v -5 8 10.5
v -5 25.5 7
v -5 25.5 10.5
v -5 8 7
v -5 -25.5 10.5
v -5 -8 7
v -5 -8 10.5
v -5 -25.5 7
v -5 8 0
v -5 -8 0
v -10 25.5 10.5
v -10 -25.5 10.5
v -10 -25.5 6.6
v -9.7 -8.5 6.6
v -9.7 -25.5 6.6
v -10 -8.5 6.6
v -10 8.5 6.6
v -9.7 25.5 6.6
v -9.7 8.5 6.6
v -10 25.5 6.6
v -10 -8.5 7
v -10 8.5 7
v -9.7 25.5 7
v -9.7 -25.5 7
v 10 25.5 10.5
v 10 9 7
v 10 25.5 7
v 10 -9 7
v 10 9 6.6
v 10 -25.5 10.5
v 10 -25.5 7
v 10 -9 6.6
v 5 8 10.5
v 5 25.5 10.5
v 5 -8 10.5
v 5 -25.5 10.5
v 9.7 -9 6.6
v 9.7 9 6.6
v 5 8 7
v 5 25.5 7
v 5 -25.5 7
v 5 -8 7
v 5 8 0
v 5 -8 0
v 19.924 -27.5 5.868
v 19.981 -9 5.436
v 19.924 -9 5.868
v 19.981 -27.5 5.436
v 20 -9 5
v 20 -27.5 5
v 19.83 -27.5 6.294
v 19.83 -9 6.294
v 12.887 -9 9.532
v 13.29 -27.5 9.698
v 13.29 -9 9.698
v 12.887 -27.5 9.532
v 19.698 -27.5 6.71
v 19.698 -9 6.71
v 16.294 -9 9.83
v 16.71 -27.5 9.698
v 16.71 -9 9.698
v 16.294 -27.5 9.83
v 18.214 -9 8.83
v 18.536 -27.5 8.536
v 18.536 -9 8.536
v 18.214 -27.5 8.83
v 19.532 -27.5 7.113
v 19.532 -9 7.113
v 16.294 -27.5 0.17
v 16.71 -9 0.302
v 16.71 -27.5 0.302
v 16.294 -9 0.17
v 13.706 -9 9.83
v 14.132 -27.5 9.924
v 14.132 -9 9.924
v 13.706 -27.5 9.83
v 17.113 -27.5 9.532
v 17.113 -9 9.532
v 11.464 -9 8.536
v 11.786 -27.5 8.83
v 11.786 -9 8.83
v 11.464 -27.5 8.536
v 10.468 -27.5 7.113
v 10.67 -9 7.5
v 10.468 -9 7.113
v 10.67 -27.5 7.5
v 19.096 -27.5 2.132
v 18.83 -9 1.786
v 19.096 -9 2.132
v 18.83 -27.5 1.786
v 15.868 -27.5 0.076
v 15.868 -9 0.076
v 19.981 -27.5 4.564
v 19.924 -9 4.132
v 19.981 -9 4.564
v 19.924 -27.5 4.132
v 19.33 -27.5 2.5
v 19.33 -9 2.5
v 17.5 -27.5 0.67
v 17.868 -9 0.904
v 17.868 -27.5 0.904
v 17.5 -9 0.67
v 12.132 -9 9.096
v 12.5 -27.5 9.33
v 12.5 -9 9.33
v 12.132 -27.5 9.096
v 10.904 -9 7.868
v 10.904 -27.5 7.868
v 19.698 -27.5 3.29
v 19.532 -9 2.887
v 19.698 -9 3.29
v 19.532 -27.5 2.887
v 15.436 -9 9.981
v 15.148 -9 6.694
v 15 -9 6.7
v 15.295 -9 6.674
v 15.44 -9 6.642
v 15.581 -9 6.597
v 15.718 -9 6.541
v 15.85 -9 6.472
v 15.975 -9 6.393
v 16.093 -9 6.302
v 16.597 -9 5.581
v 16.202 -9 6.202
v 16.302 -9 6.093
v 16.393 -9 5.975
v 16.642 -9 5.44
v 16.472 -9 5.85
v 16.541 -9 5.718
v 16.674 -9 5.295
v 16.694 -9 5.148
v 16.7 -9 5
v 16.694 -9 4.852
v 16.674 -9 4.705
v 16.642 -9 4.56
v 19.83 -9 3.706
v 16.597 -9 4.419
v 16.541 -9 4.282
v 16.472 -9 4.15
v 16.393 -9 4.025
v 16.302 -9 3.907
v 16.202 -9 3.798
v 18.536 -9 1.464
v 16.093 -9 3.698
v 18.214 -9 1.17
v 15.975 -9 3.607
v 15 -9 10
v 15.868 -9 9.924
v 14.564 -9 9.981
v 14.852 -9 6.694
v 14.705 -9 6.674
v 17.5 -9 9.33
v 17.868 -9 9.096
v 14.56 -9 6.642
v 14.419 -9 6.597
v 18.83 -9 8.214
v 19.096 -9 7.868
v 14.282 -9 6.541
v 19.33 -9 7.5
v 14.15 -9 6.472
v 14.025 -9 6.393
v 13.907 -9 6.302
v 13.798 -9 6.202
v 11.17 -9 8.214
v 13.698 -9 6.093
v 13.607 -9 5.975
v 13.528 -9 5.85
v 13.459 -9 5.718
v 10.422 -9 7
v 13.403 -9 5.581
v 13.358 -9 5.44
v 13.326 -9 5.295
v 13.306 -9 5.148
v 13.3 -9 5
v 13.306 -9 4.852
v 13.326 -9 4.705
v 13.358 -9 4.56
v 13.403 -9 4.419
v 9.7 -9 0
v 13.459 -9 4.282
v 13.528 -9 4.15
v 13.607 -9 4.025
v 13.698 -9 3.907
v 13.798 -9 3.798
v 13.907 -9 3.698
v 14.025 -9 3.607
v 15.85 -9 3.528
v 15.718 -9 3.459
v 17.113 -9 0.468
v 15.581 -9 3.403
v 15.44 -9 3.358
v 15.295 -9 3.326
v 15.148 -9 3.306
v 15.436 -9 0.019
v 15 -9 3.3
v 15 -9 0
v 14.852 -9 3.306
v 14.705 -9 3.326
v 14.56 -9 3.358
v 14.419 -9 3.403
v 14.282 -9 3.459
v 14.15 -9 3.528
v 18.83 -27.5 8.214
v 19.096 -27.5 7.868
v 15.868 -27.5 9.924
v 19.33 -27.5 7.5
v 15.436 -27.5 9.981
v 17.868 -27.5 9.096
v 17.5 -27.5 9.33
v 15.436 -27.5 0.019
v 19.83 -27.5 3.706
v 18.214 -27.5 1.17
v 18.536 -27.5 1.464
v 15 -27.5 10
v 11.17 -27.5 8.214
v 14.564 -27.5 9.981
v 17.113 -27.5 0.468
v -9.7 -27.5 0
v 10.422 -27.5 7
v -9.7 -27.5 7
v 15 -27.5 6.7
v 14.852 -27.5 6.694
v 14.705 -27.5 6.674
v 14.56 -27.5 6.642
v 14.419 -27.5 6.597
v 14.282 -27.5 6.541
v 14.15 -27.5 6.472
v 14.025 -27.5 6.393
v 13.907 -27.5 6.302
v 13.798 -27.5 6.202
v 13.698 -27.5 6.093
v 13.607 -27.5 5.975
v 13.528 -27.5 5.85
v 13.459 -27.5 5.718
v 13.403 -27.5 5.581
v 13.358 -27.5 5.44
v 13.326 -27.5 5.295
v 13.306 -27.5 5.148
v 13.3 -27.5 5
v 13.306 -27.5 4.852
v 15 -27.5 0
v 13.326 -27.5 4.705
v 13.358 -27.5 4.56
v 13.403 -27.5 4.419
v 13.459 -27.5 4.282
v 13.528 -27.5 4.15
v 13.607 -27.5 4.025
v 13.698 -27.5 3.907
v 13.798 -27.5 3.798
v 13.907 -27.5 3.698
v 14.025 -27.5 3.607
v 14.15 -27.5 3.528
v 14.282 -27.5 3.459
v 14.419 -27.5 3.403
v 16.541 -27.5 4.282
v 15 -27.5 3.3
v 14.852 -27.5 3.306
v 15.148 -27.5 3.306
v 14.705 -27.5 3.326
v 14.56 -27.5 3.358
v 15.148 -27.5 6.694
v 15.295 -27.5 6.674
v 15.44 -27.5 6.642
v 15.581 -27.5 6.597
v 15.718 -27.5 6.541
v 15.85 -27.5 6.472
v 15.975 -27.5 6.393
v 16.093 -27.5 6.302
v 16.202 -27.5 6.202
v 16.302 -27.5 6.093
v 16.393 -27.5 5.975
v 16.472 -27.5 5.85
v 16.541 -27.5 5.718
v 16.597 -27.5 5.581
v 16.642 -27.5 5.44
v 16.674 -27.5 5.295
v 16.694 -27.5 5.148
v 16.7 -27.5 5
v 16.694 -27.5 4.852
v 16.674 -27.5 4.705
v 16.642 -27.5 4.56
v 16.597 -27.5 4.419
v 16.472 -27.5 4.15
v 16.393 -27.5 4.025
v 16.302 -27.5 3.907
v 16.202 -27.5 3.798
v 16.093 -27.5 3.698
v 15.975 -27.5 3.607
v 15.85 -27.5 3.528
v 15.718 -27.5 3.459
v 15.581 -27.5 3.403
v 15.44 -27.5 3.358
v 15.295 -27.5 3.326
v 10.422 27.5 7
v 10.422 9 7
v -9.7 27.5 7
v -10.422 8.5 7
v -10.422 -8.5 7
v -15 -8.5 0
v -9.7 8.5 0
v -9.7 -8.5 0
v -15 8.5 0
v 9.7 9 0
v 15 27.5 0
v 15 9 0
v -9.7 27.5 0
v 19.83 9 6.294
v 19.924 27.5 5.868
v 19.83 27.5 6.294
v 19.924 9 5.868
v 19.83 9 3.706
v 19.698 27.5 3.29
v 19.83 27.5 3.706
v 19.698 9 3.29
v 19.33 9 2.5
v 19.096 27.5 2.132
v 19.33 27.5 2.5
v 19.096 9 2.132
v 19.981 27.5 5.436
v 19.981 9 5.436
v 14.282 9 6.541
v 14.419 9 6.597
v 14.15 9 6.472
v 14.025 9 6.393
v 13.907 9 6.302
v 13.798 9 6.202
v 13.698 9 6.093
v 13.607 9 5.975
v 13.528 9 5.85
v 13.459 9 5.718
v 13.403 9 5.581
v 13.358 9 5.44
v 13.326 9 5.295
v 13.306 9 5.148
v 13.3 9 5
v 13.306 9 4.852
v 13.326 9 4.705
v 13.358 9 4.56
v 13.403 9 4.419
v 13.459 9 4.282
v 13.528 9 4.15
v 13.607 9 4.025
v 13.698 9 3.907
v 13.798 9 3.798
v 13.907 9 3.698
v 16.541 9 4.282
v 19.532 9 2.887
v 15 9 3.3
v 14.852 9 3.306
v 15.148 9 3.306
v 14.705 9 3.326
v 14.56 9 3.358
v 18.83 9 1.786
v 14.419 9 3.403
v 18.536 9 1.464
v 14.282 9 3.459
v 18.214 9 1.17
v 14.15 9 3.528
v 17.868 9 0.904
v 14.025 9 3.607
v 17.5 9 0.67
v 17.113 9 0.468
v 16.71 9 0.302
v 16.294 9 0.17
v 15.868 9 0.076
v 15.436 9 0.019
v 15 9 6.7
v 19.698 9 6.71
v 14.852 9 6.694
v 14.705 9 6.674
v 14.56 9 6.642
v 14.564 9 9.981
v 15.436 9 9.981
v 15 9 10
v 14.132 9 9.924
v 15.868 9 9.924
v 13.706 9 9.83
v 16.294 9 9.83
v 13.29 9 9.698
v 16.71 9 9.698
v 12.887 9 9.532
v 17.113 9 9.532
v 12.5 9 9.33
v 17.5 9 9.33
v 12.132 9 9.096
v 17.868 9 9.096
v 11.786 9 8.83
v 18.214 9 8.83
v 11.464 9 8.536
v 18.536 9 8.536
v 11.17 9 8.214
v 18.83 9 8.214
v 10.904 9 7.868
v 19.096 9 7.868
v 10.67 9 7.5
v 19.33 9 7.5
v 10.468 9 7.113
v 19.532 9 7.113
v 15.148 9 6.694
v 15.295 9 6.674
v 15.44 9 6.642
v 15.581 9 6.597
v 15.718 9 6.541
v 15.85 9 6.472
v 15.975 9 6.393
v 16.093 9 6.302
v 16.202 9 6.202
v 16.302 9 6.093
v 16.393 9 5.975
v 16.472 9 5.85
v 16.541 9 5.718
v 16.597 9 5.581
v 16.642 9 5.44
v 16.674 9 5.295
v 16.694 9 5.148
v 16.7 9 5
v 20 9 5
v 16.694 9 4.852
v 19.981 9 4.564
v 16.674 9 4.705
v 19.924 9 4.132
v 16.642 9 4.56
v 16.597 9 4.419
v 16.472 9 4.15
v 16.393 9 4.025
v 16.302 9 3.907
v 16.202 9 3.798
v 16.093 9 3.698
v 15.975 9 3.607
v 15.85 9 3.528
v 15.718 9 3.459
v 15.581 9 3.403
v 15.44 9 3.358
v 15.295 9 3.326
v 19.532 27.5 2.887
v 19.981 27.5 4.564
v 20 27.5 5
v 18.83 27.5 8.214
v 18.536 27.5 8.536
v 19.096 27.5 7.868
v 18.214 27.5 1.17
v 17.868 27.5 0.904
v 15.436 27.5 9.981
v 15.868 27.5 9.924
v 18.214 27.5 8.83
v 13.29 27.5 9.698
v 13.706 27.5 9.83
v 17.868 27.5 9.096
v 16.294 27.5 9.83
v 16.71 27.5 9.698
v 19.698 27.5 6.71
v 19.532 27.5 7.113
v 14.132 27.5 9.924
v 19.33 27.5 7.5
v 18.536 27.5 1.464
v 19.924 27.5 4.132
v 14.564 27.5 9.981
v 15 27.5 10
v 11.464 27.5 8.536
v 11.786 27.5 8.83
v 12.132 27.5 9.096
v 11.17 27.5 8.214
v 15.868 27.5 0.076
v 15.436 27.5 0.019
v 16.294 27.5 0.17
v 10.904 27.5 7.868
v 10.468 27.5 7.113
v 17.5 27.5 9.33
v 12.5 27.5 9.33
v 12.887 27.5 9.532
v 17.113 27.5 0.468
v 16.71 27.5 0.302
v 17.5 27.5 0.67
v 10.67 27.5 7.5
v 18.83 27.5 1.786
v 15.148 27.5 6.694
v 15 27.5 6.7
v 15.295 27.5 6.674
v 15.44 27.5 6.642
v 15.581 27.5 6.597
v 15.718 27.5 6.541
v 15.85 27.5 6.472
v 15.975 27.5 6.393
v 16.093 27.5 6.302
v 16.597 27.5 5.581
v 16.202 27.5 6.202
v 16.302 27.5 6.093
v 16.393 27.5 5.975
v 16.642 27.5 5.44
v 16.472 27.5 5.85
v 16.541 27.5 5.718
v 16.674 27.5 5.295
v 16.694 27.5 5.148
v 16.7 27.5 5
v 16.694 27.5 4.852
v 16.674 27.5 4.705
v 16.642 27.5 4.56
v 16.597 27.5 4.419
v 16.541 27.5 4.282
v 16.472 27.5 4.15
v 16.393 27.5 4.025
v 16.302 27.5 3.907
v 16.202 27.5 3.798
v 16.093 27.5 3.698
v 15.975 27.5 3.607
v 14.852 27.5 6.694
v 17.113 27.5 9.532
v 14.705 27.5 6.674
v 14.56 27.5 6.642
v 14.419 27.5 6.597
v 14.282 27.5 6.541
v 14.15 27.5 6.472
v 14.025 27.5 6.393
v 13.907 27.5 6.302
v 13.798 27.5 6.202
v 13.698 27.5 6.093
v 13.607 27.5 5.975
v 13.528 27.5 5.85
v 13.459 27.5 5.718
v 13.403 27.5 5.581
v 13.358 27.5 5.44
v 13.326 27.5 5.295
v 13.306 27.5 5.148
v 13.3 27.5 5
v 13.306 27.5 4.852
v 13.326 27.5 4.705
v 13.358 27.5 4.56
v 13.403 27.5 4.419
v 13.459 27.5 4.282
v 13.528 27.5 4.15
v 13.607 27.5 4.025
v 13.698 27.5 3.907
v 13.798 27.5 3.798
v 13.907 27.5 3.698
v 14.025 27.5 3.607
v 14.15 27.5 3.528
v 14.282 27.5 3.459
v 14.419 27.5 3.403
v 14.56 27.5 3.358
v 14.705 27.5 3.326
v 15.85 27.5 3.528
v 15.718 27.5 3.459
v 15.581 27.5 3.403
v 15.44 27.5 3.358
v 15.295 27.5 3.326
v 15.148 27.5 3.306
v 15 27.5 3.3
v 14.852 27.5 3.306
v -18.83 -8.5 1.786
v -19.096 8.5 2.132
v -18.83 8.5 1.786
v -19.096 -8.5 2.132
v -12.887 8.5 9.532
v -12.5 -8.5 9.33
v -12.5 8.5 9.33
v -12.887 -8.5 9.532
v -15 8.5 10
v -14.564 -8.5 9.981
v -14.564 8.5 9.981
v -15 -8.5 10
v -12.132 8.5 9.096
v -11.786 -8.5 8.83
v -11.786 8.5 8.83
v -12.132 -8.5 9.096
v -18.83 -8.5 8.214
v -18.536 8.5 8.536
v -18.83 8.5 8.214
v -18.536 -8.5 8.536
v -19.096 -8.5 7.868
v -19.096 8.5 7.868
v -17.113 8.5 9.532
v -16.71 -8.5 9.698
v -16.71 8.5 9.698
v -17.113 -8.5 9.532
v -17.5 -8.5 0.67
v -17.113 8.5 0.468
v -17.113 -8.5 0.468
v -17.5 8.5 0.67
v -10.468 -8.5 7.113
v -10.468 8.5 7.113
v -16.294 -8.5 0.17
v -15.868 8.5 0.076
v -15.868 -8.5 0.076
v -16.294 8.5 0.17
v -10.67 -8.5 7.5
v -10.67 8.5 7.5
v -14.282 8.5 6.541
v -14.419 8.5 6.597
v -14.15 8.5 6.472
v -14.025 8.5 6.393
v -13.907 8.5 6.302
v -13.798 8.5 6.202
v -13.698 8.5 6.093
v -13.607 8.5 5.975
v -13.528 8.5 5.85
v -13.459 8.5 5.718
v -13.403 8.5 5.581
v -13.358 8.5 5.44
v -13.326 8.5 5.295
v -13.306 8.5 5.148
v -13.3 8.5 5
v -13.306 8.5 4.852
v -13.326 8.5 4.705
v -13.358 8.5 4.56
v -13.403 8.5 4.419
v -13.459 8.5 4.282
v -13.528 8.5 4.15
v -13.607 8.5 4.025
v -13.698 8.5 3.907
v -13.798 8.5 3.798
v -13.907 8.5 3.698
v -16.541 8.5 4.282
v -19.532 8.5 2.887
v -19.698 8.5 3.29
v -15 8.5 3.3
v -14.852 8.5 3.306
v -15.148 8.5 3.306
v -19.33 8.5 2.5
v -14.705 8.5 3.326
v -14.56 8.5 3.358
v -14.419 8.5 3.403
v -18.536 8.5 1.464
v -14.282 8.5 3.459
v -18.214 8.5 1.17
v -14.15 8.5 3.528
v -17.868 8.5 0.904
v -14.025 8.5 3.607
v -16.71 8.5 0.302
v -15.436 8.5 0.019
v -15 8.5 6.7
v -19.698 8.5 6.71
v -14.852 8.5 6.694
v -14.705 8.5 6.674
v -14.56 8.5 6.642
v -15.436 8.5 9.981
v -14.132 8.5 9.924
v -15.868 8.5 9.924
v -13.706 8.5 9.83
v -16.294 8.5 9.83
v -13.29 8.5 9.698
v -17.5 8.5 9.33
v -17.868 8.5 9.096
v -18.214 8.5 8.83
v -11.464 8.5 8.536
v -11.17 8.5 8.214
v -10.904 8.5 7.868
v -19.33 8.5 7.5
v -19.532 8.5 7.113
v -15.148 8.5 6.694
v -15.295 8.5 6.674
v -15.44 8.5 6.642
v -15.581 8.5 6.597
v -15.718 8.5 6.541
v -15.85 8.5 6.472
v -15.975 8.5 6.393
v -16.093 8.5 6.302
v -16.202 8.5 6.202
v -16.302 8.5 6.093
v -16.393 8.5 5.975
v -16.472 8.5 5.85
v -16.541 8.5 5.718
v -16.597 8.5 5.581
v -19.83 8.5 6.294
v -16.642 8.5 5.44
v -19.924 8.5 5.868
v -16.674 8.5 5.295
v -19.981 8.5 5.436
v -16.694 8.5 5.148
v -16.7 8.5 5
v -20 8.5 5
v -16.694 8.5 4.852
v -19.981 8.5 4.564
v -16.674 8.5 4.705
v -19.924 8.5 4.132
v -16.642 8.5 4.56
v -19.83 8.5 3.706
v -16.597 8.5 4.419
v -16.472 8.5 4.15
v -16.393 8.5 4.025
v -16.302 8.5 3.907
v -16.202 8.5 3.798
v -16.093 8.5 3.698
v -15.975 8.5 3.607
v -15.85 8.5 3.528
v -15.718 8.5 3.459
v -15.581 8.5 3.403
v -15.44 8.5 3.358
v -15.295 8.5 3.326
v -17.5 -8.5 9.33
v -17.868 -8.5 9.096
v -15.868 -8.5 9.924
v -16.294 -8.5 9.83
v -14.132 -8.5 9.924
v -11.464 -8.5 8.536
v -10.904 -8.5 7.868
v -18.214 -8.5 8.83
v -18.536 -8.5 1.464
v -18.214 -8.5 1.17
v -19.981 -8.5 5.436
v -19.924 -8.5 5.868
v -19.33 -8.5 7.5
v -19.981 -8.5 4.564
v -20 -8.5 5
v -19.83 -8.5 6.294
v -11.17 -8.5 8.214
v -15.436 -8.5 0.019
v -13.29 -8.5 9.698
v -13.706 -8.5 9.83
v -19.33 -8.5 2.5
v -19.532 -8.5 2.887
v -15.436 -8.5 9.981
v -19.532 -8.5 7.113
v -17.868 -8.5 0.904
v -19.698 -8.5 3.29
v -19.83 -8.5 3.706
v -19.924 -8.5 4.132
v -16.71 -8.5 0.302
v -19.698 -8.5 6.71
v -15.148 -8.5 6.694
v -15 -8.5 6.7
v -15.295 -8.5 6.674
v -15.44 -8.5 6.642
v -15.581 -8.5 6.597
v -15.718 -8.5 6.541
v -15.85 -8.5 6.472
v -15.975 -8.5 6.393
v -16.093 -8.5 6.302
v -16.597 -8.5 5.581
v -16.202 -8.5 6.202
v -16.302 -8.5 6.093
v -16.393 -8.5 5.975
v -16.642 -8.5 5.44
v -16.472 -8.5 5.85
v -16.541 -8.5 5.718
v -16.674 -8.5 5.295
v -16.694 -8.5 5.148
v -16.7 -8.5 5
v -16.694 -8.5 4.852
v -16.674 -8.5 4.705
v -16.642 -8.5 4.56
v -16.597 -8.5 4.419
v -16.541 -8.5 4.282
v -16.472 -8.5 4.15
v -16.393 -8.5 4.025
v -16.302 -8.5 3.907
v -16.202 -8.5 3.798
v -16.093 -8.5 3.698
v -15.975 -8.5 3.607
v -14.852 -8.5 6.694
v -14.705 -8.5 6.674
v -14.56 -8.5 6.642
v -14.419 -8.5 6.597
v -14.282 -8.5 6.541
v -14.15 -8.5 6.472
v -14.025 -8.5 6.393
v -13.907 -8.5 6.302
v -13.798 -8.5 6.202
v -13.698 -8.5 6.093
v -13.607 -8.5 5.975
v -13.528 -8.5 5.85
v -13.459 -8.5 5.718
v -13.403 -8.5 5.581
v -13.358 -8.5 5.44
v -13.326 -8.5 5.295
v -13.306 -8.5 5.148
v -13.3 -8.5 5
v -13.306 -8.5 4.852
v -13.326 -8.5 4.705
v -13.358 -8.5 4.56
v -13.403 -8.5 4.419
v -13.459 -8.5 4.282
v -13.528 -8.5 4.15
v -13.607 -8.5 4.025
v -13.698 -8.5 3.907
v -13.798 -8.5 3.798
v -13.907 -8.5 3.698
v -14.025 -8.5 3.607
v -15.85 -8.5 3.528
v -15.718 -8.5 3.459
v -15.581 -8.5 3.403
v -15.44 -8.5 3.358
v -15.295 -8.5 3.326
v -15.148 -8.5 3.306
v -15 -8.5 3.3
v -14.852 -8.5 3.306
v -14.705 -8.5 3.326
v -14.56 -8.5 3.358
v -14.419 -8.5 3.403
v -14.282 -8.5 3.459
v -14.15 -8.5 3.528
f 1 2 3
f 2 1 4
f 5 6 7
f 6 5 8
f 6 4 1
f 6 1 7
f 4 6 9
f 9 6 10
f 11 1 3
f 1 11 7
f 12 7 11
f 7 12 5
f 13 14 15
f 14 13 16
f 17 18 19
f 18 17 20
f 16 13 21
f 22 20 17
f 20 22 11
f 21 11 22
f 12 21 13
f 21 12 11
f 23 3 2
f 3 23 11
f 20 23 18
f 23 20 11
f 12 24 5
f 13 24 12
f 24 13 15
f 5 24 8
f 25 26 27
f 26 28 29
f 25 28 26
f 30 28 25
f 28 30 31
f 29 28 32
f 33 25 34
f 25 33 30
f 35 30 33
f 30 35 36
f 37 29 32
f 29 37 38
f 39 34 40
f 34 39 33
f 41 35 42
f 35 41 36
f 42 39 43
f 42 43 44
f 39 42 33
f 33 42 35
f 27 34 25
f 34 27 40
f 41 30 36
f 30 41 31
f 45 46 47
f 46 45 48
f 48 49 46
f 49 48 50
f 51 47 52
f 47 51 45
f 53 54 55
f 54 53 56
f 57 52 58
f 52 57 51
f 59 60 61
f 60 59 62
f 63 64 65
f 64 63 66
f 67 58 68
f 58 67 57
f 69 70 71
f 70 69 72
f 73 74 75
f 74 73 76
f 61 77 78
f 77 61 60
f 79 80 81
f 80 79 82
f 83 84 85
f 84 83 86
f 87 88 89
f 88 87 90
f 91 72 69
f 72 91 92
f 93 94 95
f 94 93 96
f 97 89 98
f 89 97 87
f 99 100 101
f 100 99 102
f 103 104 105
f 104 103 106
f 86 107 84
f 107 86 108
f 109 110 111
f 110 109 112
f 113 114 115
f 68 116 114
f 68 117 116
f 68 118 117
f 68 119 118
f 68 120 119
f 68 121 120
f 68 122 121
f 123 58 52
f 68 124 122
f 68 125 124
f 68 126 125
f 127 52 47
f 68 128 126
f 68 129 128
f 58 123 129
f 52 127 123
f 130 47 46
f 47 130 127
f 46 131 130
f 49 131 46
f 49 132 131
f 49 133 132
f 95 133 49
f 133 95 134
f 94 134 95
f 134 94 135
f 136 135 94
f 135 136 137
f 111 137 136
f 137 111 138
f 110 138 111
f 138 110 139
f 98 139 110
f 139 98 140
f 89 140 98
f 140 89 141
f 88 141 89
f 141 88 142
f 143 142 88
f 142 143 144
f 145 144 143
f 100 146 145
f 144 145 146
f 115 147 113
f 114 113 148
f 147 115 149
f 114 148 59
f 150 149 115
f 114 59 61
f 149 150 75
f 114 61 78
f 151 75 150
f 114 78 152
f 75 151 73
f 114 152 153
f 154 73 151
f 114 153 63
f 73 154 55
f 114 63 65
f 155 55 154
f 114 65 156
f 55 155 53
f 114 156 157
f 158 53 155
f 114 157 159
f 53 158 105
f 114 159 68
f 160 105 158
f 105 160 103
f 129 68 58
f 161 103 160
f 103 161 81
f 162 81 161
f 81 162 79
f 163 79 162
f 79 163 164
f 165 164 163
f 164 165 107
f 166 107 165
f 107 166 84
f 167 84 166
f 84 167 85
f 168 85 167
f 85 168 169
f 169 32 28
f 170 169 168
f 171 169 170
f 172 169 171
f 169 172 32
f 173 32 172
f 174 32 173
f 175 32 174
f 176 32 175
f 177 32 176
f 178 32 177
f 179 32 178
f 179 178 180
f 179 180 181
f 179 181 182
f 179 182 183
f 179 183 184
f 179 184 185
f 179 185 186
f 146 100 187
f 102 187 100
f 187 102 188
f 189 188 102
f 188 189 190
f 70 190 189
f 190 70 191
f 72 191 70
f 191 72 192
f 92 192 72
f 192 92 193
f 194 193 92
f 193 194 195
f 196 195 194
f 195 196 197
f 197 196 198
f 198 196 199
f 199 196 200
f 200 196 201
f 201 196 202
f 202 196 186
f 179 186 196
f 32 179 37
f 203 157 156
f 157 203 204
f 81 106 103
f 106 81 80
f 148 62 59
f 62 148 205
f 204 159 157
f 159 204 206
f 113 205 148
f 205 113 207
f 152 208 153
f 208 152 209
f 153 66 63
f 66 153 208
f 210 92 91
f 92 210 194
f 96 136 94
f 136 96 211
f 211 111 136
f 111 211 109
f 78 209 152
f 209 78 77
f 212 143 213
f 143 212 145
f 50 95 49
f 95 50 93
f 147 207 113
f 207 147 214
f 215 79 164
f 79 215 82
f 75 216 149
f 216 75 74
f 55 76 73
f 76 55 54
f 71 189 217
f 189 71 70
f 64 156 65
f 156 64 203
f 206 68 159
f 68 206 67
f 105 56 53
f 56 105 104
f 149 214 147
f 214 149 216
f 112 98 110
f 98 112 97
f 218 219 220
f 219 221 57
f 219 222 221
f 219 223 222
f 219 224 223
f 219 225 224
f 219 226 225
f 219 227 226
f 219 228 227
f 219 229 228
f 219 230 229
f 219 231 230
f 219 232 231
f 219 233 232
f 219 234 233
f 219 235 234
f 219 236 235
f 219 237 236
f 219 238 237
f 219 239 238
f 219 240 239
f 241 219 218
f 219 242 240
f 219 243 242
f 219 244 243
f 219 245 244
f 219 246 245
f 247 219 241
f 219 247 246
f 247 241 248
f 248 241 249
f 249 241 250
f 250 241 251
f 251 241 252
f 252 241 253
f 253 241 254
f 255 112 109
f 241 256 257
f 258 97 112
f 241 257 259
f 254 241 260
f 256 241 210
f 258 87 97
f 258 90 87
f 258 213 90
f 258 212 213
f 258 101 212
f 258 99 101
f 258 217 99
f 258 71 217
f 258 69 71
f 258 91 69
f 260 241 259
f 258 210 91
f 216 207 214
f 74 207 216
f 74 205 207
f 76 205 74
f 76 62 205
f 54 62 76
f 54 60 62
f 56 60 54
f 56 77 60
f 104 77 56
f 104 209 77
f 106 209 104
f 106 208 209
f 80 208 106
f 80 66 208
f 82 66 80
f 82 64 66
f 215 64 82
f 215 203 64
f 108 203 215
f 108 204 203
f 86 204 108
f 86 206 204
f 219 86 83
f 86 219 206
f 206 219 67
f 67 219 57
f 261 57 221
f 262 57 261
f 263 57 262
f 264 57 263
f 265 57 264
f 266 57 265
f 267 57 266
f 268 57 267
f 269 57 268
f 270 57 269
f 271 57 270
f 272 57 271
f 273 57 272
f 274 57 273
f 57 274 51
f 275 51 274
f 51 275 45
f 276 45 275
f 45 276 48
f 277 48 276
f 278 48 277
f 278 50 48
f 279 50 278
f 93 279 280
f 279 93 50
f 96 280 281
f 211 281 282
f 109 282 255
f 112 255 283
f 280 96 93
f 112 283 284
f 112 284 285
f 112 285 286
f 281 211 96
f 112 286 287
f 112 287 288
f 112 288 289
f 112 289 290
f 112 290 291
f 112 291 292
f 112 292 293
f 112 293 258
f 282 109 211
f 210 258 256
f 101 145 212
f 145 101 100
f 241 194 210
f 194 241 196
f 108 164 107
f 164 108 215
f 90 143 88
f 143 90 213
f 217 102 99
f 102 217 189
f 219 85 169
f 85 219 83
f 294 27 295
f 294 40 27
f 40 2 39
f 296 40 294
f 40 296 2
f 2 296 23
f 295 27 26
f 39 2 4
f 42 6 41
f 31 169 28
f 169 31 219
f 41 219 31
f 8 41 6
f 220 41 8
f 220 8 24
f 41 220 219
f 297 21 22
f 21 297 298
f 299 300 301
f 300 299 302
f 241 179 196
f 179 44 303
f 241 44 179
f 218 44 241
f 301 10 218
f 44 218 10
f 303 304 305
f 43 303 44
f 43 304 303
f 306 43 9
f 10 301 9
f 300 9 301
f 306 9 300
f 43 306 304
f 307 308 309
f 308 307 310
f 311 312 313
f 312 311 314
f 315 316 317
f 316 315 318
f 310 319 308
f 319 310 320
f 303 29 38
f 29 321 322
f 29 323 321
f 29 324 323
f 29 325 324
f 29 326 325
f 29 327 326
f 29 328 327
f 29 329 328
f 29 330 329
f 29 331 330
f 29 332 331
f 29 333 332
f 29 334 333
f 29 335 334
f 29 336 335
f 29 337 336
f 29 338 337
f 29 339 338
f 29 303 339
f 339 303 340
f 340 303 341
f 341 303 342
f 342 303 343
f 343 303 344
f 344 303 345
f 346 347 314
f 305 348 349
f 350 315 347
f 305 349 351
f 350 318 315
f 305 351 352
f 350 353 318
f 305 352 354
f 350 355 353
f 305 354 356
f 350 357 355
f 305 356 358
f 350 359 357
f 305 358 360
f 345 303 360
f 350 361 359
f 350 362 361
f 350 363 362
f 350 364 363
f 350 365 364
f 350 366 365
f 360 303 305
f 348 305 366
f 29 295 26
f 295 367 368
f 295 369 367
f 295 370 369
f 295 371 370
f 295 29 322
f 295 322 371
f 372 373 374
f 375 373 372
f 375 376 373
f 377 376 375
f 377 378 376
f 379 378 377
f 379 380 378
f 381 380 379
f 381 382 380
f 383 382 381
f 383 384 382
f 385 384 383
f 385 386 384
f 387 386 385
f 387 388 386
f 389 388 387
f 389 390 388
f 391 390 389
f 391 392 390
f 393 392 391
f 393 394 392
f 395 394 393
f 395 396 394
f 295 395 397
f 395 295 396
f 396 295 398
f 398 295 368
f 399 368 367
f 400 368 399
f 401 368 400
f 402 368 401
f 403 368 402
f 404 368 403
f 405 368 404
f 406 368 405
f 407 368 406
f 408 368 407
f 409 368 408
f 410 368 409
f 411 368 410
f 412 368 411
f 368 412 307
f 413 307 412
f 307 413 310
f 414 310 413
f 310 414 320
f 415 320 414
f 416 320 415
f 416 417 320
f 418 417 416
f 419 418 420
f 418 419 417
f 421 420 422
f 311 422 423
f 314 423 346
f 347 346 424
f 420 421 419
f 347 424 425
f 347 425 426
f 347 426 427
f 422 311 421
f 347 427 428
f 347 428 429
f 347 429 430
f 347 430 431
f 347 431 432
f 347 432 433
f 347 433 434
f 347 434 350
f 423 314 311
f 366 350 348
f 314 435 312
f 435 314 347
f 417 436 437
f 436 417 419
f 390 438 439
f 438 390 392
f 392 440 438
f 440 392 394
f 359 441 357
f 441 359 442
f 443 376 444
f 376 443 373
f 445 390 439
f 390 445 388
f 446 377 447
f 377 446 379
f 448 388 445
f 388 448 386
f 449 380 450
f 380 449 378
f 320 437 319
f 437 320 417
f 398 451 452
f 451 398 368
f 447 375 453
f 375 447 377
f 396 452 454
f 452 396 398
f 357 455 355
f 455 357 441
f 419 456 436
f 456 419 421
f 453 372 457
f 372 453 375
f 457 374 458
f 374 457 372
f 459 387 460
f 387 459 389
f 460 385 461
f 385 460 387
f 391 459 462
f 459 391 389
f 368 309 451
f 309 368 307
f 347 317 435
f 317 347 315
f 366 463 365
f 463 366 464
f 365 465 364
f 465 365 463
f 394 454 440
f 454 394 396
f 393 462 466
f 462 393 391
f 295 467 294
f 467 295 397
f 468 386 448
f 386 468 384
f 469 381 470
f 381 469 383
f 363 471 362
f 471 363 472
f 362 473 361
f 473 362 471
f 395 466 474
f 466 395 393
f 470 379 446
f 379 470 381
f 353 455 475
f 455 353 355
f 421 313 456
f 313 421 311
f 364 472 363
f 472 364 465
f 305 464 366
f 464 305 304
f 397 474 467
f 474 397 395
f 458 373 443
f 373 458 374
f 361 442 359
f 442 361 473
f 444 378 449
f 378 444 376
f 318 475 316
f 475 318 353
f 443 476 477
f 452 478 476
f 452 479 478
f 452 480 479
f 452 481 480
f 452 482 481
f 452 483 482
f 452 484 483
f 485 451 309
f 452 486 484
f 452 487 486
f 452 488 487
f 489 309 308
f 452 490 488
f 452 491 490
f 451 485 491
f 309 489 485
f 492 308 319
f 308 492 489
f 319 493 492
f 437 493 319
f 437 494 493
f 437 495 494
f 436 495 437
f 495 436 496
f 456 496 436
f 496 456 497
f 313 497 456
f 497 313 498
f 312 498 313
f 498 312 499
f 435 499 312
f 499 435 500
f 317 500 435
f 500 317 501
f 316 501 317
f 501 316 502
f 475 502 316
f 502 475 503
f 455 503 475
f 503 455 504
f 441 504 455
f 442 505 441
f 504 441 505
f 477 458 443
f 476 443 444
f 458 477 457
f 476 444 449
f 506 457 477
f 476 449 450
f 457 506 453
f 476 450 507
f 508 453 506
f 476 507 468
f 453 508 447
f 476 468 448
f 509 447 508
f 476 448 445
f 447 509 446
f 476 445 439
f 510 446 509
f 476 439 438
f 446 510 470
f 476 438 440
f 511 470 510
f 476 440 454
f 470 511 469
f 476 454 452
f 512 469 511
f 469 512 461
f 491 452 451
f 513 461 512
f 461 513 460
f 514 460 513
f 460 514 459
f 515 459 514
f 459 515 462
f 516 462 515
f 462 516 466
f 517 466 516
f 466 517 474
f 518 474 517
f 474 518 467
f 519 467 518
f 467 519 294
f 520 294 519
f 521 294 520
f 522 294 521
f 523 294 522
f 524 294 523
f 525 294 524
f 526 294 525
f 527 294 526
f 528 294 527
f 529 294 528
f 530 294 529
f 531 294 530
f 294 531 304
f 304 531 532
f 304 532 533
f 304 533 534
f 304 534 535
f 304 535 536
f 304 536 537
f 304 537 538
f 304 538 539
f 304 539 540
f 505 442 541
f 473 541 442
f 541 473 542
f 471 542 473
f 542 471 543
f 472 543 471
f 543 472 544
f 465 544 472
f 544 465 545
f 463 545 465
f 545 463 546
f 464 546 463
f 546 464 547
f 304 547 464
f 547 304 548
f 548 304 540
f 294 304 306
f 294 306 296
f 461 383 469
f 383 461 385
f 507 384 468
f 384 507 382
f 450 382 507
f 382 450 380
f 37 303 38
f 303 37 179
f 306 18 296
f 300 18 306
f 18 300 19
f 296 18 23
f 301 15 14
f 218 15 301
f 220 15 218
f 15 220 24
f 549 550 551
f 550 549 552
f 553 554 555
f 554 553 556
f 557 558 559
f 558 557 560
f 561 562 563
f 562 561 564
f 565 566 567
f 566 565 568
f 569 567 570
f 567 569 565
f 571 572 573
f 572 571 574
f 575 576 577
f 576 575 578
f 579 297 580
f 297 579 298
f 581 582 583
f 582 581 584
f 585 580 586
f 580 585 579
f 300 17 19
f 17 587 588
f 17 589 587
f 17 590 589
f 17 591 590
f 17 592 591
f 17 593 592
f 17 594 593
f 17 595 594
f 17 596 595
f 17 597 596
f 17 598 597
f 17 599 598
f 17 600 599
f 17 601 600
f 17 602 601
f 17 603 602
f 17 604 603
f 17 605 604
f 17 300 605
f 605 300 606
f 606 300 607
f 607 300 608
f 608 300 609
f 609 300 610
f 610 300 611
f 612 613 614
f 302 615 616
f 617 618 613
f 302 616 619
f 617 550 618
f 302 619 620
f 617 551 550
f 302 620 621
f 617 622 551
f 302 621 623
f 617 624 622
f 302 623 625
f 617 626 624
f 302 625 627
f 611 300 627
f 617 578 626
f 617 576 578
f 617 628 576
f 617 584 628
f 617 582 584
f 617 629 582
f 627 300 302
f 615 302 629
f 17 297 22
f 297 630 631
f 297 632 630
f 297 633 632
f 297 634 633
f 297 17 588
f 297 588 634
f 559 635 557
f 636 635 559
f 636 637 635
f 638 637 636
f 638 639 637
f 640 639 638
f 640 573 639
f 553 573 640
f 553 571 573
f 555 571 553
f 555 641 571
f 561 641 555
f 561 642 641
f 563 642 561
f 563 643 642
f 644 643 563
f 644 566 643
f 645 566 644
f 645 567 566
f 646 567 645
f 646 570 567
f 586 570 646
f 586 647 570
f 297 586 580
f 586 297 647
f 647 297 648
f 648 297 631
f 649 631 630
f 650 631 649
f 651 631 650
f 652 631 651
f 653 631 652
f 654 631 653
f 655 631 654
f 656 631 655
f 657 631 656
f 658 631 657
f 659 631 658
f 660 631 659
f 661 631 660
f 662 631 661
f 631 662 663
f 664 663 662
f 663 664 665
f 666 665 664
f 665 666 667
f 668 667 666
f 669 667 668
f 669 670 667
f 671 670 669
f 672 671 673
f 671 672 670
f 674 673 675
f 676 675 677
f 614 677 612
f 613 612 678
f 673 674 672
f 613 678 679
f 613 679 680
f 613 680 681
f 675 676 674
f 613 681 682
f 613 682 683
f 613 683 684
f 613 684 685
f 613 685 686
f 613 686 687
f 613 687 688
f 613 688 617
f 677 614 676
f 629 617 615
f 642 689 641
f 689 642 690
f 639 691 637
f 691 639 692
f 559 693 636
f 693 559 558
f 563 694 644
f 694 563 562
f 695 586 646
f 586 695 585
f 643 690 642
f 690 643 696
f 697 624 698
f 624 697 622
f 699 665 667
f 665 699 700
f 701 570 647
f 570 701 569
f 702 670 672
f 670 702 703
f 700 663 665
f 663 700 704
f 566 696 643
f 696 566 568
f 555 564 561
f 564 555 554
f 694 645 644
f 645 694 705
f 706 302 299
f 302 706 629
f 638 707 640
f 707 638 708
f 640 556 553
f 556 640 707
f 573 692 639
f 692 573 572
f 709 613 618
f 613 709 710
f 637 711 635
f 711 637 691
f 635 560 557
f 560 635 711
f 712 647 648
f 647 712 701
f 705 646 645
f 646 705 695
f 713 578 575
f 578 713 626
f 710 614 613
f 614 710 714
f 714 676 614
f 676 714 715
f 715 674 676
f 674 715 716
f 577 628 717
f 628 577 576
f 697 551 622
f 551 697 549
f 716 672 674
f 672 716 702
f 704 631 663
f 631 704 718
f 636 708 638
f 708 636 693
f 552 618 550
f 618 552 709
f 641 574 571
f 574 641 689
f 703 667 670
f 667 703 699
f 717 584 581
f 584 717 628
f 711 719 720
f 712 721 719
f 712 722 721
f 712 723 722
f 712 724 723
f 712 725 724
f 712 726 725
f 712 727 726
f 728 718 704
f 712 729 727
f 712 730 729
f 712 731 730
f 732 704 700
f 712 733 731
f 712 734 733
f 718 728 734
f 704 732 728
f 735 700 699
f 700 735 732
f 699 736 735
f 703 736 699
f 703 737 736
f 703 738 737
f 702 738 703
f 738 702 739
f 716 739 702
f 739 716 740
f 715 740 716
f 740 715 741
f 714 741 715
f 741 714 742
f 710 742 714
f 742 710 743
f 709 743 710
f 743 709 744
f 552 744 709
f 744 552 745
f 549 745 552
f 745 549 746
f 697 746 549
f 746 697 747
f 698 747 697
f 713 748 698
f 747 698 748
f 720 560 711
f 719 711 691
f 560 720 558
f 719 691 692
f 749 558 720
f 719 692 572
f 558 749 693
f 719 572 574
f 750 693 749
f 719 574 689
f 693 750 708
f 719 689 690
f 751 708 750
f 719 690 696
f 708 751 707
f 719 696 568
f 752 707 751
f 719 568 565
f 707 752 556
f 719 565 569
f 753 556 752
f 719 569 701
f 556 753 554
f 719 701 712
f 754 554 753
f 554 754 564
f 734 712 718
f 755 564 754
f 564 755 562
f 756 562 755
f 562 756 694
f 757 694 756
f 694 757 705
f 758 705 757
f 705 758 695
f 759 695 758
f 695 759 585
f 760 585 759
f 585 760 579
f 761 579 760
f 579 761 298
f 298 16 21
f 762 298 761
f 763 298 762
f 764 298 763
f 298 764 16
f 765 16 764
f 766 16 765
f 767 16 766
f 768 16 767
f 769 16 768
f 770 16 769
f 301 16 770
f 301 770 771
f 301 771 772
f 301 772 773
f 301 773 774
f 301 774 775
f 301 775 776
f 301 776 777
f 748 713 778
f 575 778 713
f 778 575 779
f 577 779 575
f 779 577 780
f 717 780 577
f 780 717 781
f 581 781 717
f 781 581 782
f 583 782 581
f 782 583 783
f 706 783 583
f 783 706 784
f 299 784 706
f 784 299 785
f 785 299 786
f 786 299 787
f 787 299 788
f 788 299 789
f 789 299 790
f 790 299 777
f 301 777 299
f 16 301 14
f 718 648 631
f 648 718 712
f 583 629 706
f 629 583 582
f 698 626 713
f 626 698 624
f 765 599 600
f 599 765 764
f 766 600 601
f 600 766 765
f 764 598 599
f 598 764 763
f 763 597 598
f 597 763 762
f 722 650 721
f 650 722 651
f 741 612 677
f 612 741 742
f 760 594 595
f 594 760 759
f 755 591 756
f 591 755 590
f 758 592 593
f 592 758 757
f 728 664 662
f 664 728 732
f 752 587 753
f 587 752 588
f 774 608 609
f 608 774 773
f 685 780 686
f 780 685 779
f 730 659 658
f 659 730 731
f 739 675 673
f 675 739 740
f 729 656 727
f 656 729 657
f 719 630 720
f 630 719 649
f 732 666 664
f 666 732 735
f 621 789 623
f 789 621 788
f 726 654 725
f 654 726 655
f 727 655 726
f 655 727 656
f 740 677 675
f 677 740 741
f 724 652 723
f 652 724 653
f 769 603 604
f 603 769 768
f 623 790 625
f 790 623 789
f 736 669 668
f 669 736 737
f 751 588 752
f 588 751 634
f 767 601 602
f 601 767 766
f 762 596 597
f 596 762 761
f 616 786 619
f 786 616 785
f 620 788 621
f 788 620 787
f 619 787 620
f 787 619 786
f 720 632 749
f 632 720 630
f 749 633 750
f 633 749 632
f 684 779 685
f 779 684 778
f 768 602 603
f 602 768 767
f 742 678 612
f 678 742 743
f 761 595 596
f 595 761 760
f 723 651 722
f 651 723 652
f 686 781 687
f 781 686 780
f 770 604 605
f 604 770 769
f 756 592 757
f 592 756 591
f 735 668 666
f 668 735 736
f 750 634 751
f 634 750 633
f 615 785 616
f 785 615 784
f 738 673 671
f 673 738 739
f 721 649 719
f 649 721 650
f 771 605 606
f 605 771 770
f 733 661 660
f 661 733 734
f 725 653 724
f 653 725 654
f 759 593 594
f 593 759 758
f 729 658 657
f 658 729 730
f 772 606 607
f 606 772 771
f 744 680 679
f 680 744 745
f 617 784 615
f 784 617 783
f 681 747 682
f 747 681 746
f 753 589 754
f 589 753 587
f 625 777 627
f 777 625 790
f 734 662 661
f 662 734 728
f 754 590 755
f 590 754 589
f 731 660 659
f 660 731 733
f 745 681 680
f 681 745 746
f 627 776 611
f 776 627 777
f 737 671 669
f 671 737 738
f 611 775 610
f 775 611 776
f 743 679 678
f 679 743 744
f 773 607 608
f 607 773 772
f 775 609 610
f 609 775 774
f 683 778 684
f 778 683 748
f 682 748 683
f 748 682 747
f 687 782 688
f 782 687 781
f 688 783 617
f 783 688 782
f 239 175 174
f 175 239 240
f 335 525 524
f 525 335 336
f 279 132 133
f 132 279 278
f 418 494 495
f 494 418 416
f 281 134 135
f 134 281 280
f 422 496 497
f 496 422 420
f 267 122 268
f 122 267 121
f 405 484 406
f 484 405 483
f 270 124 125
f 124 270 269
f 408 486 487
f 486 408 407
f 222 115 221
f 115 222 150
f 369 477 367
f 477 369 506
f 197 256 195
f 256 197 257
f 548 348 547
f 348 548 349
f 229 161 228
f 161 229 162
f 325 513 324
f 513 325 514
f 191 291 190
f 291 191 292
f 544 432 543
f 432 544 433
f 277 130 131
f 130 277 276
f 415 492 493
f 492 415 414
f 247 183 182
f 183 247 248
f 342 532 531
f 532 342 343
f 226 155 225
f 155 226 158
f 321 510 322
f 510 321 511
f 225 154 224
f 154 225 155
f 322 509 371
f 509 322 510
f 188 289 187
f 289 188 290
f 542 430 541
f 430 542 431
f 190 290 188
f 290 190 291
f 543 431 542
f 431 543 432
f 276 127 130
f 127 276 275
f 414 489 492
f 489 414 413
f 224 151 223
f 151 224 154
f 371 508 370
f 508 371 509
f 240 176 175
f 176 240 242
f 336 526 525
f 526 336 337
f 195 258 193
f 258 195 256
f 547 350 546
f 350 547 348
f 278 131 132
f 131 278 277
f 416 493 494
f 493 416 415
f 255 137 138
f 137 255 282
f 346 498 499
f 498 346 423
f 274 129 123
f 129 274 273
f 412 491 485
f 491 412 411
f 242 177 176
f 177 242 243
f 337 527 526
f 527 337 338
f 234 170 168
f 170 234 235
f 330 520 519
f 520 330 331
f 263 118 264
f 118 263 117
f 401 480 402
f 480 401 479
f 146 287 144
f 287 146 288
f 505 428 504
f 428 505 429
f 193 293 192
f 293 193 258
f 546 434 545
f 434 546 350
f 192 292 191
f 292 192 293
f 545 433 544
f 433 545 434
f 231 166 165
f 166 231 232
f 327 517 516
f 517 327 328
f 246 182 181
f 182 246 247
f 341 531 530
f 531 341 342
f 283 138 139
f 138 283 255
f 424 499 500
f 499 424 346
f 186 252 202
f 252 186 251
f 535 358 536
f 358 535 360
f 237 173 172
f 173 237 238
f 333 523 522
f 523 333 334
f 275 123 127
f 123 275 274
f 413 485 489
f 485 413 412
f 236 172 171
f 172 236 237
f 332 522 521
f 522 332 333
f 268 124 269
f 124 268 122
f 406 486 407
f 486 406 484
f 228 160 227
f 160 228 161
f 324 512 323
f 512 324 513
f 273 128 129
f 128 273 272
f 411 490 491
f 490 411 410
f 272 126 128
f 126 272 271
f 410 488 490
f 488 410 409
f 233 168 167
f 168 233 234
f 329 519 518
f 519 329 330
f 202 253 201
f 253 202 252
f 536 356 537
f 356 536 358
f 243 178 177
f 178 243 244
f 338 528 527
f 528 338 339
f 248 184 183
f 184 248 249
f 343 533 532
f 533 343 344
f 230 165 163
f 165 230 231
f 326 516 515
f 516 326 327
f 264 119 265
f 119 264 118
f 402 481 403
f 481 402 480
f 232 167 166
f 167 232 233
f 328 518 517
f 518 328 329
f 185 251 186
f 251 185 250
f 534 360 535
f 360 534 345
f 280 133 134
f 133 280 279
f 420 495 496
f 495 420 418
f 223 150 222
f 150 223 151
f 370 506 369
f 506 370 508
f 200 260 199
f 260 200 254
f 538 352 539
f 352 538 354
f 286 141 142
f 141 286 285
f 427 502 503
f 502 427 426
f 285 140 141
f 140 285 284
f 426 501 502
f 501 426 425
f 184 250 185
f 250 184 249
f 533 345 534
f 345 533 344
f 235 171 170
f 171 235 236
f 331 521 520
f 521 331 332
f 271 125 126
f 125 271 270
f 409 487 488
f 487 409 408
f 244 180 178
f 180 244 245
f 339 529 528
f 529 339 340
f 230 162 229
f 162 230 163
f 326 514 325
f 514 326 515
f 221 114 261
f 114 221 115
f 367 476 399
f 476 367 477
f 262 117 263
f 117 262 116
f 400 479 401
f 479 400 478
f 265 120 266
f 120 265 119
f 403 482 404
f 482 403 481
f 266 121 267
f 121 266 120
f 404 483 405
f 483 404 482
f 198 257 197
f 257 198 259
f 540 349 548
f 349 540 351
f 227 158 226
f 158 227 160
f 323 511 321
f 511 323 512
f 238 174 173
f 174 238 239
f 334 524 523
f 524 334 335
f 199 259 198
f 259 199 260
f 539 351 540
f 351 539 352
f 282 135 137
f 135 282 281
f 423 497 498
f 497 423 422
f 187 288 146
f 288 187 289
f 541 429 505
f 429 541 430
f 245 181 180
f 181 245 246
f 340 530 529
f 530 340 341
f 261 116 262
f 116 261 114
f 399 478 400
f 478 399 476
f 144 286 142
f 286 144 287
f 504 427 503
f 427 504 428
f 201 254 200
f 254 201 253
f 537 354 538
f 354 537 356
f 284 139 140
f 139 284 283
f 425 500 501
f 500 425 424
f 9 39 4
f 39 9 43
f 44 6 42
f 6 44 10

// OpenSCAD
/*
  Standalone pinned track links
  -----------------------------
  One identical link is repeated to form a track. The front end has two outer
  knuckles and the rear end has one centre knuckle. Adjacent links share a
  3 mm steel pin or M3 fastener.

  Print orientation: tread up, flat inner pad face on the build plate.
*/

$fn = 72;

// link, straight_pair, bent_pair, six_link_plate, cog_reference,
// cog_engagement, dimensions, straight_collision, bend_collision,
// cog_collision, pin_reference
part = "link";

// ---------- primary parameters ----------
track_width = 55;
pitch = 30;
pad_thickness = 7;

barrel_od = 10;
hinge_z = barrel_od / 2;

pin_d = 3;
pin_bore_d = 3.4;
pin_end_overhang = 2;

centre_knuckle_length = 17;
knuckle_clearance = 0.5;
outer_knuckle_length =
    (track_width - centre_knuckle_length - 2 * knuckle_clearance) / 2;

core_end_clearance = 0.3;
core_body_length = pitch - barrel_od - 2 * core_end_clearance;
connector_overlap = 1;
connector_length =
    pitch / 2 - core_body_length / 2 + connector_overlap;

grouser_height = 3.5;
grouser_width = track_width - 4;
grouser_length = 5;
grouser_spacing = 15;
grouser_overlap = 0.4;

// A cog tooth enters this opening from the wheel side. Keeping it open through
// the tread prevents the radial collision that a blind pocket would create.
drive_window_tangent = 10;
drive_window_width = 16;

reference_tooth_tangent_root = 8;
reference_tooth_tangent_tip = 5;
reference_tooth_width = 14;
reference_tooth_radial = 10;
reference_tooth_inset = 3.5;
reference_cog_body_inset = 7.5;

// A pinned link bends this much around an 11-tooth pitch circle.
design_sprocket_teeth = 11;
design_bend_angle = 360 / design_sprocket_teeth;

assert(pin_bore_d > pin_d, "Pin bore must be larger than the pin");
assert(barrel_od > pin_bore_d + 4, "Hinge barrel wall is too thin");
assert(outer_knuckle_length > 0, "Knuckle lengths must be positive");
assert(connector_overlap > 0, "Connector overlap must be positive");
assert(
    drive_window_tangent > reference_tooth_tangent_root &&
    drive_window_width > reference_tooth_width,
    "The drive window must clear the reference cog tooth"
);
assert(
    reference_tooth_tangent_root > reference_tooth_tangent_tip,
    "Cog tooth tip must be narrower than its root"
);

// ---------- geometry ----------
module barrel(x, y, length) {
    translate([x, y, hinge_z])
        rotate([90, 0, 0])
            cylinder(h=length, d=barrel_od, center=true);
}

module pin_bore(x) {
    translate([x, 0, hinge_z])
        rotate([90, 0, 0])
            cylinder(h=track_width + 2, d=pin_bore_d, center=true);
}

module tread_ribs() {
    for (x = [-grouser_spacing / 2, grouser_spacing / 2])
        translate([
            x,
            0,
            pad_thickness + grouser_height / 2 - grouser_overlap / 2
        ])
            cube([
                grouser_length,
                grouser_width,
                grouser_height + grouser_overlap
            ], center=true);
}

module connector(x, y, width) {
    translate([x, y, pad_thickness / 2])
        cube([connector_length, width, pad_thickness], center=true);
}

module track_link() {
    outer_y = track_width / 2 - outer_knuckle_length / 2;

    difference() {
        union() {
            // Wheel-side face sits at z=0 for support-free printing.
            translate([0, 0, pad_thickness / 2])
                cube([core_body_length, track_width, pad_thickness], center=true);

            tread_ribs();

            // Front: two female outer knuckles.
            for (side = [-1, 1]) {
                barrel(
                    pitch / 2,
                    side * outer_y,
                    outer_knuckle_length
                );
                connector(
                    core_body_length / 2 - connector_overlap + connector_length / 2,
                    side * outer_y,
                    outer_knuckle_length
                );
            }

            // Rear: one male centre knuckle.
            barrel(-pitch / 2, 0, centre_knuckle_length);
            connector(
                -core_body_length / 2 + connector_overlap - connector_length / 2,
                0,
                centre_knuckle_length
            );
        }

        // Cut through the complete width so every knuckle is coaxial.
        pin_bore(-pitch / 2);
        pin_bore(pitch / 2);

        // Through-window for a cog tooth. It is deliberately not a blind
        // pocket: the future tooth may pass through without hitting a roof.
        translate([0, 0, (pad_thickness + grouser_height) / 2])
            cube([
                drive_window_tangent,
                drive_window_width,
                pad_thickness + grouser_height + 2
            ], center=true);
    }
}

module pin_reference() {
    color("silver")
        rotate([90, 0, 0])
            cylinder(
                h=track_width + 2 * pin_end_overhang,
                d=pin_d,
                center=true
            );
}

module second_link(angle=0) {
    shared_axis = [pitch / 2, 0, hinge_z];

    translate(shared_axis)
        rotate([0, -angle, 0])
            translate(-shared_axis)
                translate([pitch, 0, 0])
                    track_link();
}

module link_pair(angle=0, show_pin=true) {
    color("darkorange") track_link();
    color("gold") second_link(angle);

    if (show_pin)
        translate([pitch / 2, 0, hinge_z]) pin_reference();
}

module six_link_plate() {
    x_step = 46;
    y_step = track_width + 7;

    for (row = [-0.5, 0.5])
        for (column = [-1, 0, 1])
            translate([column * x_step, row * y_step, 0])
                track_link();
}

module tapered_cog_tooth() {
    radial_half = reference_tooth_radial / 2;
    width_half = reference_tooth_width / 2;
    root_half = reference_tooth_tangent_root / 2;
    tip_half = reference_tooth_tangent_tip / 2;

    // Local X is radial, Y is across the track, and Z is tangential. The
    // narrower outer face gives symmetric lead-in and lead-out ramps, so the
    // same wheel geometry works in forward and reverse.
    polyhedron(
        points=[
            [-radial_half, -width_half, -root_half],
            [-radial_half,  width_half, -root_half],
            [-radial_half,  width_half,  root_half],
            [-radial_half, -width_half,  root_half],
            [ radial_half, -width_half, -tip_half],
            [ radial_half,  width_half, -tip_half],
            [ radial_half,  width_half,  tip_half],
            [ radial_half, -width_half,  tip_half]
        ],
        faces=[
            [0, 3, 2, 1],
            [4, 5, 6, 7],
            [0, 1, 5, 4],
            [3, 7, 6, 2],
            [0, 4, 7, 3],
            [1, 2, 6, 5]
        ],
        convexity=4
    );
}

module cog_reference() {
    pitch_radius = pitch / (2 * sin(180 / design_sprocket_teeth));
    tooth_centre_radius = pitch_radius - reference_tooth_inset;
    body_radius = pitch_radius - reference_cog_body_inset;

    difference() {
        union() {
            rotate([90, 0, 0])
                cylinder(h=reference_tooth_width, r=body_radius, center=true);

            // Offset the pattern so the engagement fixture has one tooth
            // exactly on its vertical centreline.
            for (step = [0 : design_sprocket_teeth - 1])
                let(angle = 90 + step * 360 / design_sprocket_teeth)
                translate([
                    tooth_centre_radius * cos(angle),
                    0,
                    tooth_centre_radius * sin(angle)
                ])
                    rotate([0, -angle, 0])
                        tapered_cog_tooth();
        }

        rotate([90, 0, 0])
            cylinder(h=reference_tooth_width + 2, d=8.2, center=true);
    }
}

module engaged_link() {
    pitch_radius = pitch / (2 * sin(180 / design_sprocket_teeth));

    translate([0, 0, pitch_radius - hinge_z])
        track_link();
}

module cog_engagement() {
    color("slategray") cog_reference();
    color("darkorange") engaged_link();
}

module straight_collision() {
    intersection() {
        track_link();
        second_link(0);
    }
}

module bend_collision(angle=design_bend_angle) {
    intersection() {
        track_link();
        second_link(angle);
    }
}

module cog_collision() {
    intersection() {
        cog_reference();
        engaged_link();
    }
}

module dimensions() {
    echo("track_width_mm", track_width);
    echo("pin_pitch_mm", pitch);
    echo("overall_link_length_mm", pitch + barrel_od);
    echo("pad_body_length_mm", core_body_length);
    echo("core_end_clearance_mm", core_end_clearance);
    echo("link_height_mm", pad_thickness + grouser_height);
    echo("pin_bore_mm", pin_bore_d);
    echo("pin_mm", pin_d);
    echo("diametral_pin_clearance_mm", pin_bore_d - pin_d);
    echo("knuckle_clearance_each_side_mm", knuckle_clearance);
    echo("barrel_wall_radial_mm", (barrel_od - pin_bore_d) / 2);
    echo("connector_overlap_mm", connector_overlap);
    echo("drive_window_mm", [drive_window_tangent, drive_window_width]);
    echo("reference_cog_tooth_mm", [
        reference_tooth_tangent_root,
        reference_tooth_tangent_tip,
        reference_tooth_width,
        reference_tooth_radial
    ]);
    echo("reference_tooth_flank_angle_deg",
         atan((reference_tooth_tangent_root - reference_tooth_tangent_tip) /
              (2 * reference_tooth_radial)));
    echo("reference_tooth_root_overlap_mm",
         body_radius_for_echo() -
         (pitch_radius_for_echo() - reference_tooth_inset - reference_tooth_radial / 2));
    echo("design_bend_angle_deg", design_bend_angle);
}

function pitch_radius_for_echo() =
    pitch / (2 * sin(180 / design_sprocket_teeth));
function body_radius_for_echo() =
    pitch_radius_for_echo() - reference_cog_body_inset;

// ---------- output ----------
if (part == "link") track_link();
else if (part == "straight_pair") link_pair(0, true);
else if (part == "bent_pair") link_pair(design_bend_angle, true);
else if (part == "six_link_plate") six_link_plate();
else if (part == "cog_reference") cog_reference();
else if (part == "cog_engagement") cog_engagement();
else if (part == "dimensions") dimensions();
else if (part == "straight_collision") straight_collision();
else if (part == "bend_collision") bend_collision();
else if (part == "cog_collision") cog_collision();
else if (part == "pin_reference") pin_reference();
else assert(false, str("Unknown part selector: ", part));
